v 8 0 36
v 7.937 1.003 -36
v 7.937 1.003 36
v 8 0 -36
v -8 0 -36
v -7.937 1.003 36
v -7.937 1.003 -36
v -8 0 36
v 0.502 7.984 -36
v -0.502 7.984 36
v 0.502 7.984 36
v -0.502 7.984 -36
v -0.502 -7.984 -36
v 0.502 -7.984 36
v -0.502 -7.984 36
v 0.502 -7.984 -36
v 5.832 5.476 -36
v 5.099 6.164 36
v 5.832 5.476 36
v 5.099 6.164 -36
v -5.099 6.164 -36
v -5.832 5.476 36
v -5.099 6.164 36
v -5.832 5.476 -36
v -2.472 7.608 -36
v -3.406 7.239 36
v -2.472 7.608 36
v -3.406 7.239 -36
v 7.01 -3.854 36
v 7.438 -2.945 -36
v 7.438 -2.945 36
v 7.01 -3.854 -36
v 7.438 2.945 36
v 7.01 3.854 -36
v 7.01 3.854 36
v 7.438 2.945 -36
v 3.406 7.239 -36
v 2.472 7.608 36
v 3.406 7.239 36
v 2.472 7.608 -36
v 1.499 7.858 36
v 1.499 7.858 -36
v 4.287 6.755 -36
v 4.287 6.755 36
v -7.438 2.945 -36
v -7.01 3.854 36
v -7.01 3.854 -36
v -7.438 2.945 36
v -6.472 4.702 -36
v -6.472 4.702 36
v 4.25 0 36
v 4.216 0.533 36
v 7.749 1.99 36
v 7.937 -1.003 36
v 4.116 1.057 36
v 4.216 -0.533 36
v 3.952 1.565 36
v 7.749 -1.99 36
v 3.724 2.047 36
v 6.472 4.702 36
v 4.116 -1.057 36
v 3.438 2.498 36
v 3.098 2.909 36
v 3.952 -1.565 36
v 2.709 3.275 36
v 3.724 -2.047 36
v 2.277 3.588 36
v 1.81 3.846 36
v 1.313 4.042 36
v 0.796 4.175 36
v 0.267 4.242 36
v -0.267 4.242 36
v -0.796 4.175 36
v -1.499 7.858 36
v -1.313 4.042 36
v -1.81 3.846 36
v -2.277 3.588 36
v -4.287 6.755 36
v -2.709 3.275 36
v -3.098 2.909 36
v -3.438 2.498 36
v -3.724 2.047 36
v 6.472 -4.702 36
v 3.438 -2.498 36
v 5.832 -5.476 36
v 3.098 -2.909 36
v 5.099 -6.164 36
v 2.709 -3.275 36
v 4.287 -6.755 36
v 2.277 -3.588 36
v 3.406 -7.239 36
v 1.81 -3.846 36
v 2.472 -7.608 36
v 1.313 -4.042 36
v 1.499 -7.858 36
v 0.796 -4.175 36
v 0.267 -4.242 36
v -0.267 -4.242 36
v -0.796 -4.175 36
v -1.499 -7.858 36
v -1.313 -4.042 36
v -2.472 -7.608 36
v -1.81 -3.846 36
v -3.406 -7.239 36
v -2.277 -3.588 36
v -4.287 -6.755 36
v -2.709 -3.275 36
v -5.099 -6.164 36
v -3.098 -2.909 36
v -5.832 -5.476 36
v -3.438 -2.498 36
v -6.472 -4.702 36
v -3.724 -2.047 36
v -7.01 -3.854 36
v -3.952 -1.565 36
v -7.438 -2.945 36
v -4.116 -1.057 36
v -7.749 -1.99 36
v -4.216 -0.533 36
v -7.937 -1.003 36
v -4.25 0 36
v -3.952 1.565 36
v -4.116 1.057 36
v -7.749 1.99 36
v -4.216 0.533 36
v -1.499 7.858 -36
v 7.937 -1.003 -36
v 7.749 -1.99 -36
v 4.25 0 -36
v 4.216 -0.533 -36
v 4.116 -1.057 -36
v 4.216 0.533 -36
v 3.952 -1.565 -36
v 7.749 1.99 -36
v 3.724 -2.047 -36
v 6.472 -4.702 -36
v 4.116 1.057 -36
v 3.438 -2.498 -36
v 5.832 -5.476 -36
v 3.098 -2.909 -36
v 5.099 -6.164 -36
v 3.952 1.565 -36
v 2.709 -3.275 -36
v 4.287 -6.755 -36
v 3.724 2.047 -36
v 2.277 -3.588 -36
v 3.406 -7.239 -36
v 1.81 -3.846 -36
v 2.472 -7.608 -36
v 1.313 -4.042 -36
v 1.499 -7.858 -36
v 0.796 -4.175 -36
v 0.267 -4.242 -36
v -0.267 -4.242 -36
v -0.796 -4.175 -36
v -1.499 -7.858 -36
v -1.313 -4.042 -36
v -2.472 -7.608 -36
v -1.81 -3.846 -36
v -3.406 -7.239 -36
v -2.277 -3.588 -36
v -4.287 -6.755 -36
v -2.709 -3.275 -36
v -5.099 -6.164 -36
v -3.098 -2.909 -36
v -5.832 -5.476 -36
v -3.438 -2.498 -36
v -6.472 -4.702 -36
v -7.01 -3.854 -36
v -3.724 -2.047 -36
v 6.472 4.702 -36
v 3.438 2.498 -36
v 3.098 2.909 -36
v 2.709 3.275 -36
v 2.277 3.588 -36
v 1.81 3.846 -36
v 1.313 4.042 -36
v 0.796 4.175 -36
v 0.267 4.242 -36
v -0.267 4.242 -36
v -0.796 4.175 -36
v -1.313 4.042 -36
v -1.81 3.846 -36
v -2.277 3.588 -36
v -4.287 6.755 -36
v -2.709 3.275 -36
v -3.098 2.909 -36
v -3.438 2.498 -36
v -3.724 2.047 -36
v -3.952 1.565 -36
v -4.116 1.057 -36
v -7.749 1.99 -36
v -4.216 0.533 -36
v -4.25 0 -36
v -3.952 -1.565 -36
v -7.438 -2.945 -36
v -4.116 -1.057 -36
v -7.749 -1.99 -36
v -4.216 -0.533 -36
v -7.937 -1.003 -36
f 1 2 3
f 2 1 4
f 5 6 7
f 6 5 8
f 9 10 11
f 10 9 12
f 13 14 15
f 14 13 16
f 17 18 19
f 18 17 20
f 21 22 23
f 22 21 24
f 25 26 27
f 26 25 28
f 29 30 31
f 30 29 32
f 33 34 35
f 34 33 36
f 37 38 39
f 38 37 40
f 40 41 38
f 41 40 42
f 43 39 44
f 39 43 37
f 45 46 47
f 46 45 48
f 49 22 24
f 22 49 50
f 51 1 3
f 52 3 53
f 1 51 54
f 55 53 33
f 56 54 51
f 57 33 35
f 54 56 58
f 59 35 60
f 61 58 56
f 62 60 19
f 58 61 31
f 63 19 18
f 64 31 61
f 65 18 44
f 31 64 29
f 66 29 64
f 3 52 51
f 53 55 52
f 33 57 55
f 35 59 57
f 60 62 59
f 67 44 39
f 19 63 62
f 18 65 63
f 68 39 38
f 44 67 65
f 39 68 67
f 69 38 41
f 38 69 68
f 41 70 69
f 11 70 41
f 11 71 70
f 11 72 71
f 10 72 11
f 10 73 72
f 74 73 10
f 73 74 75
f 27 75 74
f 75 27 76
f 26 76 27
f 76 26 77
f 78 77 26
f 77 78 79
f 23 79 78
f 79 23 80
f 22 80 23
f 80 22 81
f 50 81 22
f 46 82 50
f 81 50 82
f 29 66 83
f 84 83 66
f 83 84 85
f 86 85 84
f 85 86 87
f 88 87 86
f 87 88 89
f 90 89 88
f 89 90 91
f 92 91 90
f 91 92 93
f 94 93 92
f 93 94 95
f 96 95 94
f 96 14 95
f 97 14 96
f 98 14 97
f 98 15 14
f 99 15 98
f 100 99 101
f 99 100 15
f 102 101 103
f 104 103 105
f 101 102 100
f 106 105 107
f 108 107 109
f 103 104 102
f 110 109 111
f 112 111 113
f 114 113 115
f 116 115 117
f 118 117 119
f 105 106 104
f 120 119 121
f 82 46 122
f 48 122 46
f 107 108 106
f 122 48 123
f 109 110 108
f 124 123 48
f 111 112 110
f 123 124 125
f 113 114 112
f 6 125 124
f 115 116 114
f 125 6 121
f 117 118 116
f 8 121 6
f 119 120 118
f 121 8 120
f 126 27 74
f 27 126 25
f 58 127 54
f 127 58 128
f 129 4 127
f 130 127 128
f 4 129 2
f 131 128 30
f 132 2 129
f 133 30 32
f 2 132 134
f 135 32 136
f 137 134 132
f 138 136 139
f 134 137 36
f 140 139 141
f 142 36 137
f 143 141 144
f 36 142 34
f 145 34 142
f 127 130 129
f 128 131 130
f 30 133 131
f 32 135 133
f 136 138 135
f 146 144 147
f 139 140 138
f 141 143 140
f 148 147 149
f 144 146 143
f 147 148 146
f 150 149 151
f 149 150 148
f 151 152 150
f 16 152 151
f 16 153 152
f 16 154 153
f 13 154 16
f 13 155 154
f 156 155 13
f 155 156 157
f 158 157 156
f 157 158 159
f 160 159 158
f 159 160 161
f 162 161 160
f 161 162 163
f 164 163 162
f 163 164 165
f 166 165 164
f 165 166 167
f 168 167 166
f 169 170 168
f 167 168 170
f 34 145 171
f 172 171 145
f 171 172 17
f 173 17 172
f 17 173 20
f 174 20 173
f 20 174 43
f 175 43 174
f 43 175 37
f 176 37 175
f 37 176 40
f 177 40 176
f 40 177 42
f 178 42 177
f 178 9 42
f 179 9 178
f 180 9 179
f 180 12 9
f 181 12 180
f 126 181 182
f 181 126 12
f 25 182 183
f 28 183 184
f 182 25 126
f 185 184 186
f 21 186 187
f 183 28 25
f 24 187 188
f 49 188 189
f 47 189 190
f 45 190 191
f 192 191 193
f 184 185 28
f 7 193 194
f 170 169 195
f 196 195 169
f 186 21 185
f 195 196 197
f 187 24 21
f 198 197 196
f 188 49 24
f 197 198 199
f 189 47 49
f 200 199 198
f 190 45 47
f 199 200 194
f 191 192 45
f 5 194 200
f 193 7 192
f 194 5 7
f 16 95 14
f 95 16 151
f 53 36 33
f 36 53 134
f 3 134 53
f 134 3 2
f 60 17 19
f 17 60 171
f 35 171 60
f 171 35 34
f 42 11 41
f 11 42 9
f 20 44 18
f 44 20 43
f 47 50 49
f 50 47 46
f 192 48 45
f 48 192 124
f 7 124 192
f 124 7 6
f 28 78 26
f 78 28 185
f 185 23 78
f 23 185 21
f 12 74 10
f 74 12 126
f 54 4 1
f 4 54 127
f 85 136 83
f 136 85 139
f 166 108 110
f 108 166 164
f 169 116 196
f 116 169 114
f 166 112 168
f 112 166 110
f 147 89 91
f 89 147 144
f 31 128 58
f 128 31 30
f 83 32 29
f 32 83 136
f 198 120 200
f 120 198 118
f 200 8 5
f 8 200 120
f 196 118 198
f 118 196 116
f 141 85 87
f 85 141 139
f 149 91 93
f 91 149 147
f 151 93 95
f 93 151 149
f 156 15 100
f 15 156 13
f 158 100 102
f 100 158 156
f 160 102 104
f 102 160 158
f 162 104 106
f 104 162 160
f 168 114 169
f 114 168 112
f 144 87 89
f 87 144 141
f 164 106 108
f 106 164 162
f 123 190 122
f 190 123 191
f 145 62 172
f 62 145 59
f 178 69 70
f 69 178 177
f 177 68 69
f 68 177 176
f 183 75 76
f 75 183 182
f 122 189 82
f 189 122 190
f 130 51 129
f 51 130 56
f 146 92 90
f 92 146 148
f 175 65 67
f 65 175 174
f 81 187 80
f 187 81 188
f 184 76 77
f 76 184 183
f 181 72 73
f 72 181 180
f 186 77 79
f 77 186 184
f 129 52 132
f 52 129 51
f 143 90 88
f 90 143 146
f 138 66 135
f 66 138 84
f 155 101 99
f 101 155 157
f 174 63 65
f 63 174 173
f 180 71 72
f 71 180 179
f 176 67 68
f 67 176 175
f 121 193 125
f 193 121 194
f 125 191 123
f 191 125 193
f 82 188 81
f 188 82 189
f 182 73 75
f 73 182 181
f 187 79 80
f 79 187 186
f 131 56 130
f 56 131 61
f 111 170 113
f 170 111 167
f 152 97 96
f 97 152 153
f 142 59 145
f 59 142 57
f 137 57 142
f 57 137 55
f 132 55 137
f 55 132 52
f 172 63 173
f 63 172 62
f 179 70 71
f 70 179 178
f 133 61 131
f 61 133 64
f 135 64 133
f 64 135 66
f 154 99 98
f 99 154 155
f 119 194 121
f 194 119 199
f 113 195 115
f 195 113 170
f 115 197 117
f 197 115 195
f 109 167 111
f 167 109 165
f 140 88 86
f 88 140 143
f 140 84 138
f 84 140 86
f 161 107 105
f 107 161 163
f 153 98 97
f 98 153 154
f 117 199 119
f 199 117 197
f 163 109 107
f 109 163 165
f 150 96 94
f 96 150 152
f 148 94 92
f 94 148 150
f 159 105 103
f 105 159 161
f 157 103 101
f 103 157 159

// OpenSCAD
$fn = 50;


difference() {
	union() {
		translate(v = [0, 0, -36.0000000000]) {
			cylinder(h = 72, r = 8.0000000000);
		}
	}
	union() {
		translate(v = [0, 0, -100.0000000000]) {
			cylinder(h = 200, r = 4.2500000000);
		}
	}
}
